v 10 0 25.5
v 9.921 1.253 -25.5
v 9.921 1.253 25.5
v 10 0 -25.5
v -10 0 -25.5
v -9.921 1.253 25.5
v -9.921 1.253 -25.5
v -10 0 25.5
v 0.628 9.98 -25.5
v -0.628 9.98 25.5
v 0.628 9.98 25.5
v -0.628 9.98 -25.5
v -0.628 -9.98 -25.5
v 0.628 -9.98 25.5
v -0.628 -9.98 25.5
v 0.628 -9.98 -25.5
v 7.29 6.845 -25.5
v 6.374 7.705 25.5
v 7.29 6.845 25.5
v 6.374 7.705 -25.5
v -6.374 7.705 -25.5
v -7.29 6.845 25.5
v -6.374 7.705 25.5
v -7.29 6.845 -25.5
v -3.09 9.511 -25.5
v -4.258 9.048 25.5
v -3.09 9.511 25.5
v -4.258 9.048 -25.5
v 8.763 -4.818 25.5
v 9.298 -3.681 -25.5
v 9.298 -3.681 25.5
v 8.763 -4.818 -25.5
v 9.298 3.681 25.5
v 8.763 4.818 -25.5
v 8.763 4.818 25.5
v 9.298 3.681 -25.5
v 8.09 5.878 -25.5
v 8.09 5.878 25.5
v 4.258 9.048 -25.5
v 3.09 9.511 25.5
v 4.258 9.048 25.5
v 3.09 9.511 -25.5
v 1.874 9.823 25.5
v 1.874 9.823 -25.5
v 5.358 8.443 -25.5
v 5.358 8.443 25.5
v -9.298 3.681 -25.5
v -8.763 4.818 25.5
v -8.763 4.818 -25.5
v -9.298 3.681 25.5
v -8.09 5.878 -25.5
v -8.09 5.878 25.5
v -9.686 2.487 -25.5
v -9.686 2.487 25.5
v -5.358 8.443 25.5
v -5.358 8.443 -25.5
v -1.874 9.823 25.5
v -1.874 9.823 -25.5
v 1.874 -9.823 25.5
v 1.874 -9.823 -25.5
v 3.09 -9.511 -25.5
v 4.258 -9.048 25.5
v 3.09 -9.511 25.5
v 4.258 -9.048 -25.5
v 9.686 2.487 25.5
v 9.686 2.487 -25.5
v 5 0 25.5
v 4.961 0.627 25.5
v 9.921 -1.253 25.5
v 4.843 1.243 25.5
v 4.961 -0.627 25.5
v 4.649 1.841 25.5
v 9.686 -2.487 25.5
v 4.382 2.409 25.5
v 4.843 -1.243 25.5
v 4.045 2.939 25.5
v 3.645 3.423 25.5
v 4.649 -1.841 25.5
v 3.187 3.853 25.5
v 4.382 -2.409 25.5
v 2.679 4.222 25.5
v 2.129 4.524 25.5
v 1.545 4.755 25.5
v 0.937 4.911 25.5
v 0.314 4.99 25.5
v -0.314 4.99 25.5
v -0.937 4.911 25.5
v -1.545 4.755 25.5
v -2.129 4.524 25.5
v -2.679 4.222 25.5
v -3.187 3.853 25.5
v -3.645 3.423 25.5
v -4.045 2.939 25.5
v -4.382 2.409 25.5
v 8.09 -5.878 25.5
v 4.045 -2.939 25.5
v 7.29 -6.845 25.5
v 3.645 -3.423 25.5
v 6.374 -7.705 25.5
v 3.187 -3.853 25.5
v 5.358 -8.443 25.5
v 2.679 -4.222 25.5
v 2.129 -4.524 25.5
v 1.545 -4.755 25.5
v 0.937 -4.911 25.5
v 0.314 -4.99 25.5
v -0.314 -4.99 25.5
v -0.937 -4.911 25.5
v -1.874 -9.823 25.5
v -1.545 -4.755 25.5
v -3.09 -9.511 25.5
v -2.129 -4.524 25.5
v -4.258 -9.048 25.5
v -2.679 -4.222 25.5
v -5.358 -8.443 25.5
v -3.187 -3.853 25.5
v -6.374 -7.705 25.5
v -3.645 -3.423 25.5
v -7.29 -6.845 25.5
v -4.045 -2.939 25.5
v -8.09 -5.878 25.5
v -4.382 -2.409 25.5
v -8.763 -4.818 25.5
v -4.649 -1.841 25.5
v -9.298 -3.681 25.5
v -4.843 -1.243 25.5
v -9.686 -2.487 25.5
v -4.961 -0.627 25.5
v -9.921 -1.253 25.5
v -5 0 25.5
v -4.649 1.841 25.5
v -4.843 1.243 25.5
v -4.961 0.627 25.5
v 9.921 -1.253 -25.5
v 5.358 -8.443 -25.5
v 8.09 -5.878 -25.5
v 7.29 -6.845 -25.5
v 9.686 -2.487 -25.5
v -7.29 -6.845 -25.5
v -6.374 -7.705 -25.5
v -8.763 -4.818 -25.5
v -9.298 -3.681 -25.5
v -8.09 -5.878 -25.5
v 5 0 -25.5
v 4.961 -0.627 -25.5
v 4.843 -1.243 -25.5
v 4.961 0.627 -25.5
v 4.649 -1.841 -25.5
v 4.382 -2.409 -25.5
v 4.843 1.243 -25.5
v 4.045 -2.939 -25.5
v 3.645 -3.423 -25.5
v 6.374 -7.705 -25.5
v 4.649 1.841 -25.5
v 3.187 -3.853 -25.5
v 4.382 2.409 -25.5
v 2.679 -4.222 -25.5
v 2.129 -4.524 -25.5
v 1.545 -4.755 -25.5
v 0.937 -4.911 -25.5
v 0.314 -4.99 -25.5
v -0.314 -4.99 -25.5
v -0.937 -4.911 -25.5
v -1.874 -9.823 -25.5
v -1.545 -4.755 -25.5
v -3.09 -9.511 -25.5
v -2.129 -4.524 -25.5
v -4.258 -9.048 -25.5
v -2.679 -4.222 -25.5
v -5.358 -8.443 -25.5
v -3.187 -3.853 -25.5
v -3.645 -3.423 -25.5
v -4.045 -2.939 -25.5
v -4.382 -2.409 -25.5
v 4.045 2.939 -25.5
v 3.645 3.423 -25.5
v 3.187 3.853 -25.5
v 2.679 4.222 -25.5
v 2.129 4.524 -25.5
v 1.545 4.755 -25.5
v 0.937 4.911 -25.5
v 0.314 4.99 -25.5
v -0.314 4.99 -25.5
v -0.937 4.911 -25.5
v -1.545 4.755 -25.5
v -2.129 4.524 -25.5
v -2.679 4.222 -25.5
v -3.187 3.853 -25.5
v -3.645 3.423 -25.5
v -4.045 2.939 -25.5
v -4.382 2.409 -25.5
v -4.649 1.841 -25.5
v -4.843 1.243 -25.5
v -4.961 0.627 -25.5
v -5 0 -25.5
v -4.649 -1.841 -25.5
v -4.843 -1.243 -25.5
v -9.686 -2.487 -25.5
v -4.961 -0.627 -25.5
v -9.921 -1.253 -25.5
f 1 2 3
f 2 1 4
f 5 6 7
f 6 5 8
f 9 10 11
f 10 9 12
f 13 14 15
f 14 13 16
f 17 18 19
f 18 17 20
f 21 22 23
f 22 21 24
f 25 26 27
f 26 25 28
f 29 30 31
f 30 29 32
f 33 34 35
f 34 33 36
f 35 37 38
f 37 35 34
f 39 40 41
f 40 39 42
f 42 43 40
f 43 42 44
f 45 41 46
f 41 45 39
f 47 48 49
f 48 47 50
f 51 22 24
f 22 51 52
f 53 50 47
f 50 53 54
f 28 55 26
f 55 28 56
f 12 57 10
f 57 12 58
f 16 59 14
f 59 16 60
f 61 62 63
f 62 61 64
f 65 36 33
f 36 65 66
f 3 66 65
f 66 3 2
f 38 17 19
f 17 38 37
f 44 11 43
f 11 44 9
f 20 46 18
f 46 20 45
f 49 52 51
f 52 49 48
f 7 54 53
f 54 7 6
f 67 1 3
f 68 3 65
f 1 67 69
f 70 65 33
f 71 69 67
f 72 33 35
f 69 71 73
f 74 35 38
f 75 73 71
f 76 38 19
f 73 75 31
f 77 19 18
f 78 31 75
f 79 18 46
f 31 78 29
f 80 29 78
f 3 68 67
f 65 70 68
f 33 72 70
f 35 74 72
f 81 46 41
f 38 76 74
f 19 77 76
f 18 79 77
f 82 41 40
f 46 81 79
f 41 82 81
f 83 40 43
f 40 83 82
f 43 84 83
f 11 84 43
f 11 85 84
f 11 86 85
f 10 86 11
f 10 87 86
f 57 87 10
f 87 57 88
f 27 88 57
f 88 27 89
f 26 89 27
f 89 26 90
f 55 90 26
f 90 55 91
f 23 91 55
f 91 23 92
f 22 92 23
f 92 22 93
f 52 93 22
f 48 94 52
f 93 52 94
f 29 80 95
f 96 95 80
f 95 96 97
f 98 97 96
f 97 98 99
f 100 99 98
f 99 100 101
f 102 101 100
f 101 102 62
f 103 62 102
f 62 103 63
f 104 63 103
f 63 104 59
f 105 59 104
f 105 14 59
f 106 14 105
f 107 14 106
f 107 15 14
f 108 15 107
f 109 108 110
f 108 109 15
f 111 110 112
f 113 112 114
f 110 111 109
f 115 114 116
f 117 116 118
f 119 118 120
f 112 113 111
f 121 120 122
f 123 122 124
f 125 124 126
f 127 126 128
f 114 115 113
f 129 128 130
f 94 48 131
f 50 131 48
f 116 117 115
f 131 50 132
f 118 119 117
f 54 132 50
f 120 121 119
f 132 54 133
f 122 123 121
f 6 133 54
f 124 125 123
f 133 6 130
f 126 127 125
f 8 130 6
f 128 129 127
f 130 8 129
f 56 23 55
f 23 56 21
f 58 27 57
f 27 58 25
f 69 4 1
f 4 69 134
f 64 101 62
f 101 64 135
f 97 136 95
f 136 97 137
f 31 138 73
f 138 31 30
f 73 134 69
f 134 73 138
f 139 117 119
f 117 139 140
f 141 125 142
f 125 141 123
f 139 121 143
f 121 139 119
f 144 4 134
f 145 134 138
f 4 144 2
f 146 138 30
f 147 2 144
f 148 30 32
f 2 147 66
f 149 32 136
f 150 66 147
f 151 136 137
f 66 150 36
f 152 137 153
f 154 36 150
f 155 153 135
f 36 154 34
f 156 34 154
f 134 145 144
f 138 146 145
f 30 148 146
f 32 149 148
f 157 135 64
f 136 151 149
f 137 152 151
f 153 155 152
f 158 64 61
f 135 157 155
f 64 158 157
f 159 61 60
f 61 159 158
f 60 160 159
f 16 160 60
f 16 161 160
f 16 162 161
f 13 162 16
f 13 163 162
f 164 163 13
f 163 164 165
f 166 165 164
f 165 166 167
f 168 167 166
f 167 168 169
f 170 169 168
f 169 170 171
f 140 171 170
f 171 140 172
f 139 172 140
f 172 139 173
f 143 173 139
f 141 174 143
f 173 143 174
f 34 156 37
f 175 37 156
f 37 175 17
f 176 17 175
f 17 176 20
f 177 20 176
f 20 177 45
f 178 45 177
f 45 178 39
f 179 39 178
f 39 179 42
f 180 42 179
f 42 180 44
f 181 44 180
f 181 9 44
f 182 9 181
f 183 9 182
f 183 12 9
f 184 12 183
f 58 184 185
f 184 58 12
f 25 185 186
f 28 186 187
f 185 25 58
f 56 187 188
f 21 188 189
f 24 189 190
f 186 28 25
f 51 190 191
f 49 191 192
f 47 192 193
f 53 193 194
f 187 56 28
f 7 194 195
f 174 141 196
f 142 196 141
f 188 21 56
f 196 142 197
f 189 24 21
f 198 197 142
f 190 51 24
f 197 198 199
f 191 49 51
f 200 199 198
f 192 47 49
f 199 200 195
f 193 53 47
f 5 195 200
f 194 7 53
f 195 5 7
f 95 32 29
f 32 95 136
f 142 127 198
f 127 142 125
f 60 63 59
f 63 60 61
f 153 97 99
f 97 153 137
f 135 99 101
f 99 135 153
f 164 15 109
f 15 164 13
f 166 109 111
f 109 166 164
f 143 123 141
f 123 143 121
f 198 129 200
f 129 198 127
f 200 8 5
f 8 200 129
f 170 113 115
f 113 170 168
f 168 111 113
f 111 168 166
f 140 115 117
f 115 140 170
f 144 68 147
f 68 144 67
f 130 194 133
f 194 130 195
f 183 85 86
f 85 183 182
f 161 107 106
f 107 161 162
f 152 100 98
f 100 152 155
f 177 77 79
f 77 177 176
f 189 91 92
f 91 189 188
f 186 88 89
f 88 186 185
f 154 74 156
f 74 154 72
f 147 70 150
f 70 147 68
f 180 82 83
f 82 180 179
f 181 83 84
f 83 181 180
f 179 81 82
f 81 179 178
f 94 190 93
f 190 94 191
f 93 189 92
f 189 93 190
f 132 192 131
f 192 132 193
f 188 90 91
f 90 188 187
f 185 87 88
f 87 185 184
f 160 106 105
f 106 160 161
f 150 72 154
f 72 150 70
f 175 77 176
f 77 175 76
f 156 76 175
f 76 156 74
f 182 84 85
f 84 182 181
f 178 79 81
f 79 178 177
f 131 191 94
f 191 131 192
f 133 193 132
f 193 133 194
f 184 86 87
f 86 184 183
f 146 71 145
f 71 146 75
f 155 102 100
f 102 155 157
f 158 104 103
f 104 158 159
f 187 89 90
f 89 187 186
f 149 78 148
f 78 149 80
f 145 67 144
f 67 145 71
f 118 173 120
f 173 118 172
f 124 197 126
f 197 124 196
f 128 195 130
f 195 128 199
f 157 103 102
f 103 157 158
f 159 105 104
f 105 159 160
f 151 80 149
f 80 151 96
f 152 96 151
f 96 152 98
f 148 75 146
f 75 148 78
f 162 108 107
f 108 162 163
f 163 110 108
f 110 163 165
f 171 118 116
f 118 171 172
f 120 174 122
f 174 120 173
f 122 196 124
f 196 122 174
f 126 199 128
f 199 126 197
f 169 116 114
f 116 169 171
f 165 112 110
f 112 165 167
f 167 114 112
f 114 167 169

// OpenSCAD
$fn = 50;


difference() {
	union() {
		translate(v = [0, 0, -25.5000000000]) {
			cylinder(h = 51, r = 10.0000000000);
		}
	}
	union() {
		translate(v = [0, 0, -100.0000000000]) {
			cylinder(h = 200, r = 5.0000000000);
		}
	}
}
